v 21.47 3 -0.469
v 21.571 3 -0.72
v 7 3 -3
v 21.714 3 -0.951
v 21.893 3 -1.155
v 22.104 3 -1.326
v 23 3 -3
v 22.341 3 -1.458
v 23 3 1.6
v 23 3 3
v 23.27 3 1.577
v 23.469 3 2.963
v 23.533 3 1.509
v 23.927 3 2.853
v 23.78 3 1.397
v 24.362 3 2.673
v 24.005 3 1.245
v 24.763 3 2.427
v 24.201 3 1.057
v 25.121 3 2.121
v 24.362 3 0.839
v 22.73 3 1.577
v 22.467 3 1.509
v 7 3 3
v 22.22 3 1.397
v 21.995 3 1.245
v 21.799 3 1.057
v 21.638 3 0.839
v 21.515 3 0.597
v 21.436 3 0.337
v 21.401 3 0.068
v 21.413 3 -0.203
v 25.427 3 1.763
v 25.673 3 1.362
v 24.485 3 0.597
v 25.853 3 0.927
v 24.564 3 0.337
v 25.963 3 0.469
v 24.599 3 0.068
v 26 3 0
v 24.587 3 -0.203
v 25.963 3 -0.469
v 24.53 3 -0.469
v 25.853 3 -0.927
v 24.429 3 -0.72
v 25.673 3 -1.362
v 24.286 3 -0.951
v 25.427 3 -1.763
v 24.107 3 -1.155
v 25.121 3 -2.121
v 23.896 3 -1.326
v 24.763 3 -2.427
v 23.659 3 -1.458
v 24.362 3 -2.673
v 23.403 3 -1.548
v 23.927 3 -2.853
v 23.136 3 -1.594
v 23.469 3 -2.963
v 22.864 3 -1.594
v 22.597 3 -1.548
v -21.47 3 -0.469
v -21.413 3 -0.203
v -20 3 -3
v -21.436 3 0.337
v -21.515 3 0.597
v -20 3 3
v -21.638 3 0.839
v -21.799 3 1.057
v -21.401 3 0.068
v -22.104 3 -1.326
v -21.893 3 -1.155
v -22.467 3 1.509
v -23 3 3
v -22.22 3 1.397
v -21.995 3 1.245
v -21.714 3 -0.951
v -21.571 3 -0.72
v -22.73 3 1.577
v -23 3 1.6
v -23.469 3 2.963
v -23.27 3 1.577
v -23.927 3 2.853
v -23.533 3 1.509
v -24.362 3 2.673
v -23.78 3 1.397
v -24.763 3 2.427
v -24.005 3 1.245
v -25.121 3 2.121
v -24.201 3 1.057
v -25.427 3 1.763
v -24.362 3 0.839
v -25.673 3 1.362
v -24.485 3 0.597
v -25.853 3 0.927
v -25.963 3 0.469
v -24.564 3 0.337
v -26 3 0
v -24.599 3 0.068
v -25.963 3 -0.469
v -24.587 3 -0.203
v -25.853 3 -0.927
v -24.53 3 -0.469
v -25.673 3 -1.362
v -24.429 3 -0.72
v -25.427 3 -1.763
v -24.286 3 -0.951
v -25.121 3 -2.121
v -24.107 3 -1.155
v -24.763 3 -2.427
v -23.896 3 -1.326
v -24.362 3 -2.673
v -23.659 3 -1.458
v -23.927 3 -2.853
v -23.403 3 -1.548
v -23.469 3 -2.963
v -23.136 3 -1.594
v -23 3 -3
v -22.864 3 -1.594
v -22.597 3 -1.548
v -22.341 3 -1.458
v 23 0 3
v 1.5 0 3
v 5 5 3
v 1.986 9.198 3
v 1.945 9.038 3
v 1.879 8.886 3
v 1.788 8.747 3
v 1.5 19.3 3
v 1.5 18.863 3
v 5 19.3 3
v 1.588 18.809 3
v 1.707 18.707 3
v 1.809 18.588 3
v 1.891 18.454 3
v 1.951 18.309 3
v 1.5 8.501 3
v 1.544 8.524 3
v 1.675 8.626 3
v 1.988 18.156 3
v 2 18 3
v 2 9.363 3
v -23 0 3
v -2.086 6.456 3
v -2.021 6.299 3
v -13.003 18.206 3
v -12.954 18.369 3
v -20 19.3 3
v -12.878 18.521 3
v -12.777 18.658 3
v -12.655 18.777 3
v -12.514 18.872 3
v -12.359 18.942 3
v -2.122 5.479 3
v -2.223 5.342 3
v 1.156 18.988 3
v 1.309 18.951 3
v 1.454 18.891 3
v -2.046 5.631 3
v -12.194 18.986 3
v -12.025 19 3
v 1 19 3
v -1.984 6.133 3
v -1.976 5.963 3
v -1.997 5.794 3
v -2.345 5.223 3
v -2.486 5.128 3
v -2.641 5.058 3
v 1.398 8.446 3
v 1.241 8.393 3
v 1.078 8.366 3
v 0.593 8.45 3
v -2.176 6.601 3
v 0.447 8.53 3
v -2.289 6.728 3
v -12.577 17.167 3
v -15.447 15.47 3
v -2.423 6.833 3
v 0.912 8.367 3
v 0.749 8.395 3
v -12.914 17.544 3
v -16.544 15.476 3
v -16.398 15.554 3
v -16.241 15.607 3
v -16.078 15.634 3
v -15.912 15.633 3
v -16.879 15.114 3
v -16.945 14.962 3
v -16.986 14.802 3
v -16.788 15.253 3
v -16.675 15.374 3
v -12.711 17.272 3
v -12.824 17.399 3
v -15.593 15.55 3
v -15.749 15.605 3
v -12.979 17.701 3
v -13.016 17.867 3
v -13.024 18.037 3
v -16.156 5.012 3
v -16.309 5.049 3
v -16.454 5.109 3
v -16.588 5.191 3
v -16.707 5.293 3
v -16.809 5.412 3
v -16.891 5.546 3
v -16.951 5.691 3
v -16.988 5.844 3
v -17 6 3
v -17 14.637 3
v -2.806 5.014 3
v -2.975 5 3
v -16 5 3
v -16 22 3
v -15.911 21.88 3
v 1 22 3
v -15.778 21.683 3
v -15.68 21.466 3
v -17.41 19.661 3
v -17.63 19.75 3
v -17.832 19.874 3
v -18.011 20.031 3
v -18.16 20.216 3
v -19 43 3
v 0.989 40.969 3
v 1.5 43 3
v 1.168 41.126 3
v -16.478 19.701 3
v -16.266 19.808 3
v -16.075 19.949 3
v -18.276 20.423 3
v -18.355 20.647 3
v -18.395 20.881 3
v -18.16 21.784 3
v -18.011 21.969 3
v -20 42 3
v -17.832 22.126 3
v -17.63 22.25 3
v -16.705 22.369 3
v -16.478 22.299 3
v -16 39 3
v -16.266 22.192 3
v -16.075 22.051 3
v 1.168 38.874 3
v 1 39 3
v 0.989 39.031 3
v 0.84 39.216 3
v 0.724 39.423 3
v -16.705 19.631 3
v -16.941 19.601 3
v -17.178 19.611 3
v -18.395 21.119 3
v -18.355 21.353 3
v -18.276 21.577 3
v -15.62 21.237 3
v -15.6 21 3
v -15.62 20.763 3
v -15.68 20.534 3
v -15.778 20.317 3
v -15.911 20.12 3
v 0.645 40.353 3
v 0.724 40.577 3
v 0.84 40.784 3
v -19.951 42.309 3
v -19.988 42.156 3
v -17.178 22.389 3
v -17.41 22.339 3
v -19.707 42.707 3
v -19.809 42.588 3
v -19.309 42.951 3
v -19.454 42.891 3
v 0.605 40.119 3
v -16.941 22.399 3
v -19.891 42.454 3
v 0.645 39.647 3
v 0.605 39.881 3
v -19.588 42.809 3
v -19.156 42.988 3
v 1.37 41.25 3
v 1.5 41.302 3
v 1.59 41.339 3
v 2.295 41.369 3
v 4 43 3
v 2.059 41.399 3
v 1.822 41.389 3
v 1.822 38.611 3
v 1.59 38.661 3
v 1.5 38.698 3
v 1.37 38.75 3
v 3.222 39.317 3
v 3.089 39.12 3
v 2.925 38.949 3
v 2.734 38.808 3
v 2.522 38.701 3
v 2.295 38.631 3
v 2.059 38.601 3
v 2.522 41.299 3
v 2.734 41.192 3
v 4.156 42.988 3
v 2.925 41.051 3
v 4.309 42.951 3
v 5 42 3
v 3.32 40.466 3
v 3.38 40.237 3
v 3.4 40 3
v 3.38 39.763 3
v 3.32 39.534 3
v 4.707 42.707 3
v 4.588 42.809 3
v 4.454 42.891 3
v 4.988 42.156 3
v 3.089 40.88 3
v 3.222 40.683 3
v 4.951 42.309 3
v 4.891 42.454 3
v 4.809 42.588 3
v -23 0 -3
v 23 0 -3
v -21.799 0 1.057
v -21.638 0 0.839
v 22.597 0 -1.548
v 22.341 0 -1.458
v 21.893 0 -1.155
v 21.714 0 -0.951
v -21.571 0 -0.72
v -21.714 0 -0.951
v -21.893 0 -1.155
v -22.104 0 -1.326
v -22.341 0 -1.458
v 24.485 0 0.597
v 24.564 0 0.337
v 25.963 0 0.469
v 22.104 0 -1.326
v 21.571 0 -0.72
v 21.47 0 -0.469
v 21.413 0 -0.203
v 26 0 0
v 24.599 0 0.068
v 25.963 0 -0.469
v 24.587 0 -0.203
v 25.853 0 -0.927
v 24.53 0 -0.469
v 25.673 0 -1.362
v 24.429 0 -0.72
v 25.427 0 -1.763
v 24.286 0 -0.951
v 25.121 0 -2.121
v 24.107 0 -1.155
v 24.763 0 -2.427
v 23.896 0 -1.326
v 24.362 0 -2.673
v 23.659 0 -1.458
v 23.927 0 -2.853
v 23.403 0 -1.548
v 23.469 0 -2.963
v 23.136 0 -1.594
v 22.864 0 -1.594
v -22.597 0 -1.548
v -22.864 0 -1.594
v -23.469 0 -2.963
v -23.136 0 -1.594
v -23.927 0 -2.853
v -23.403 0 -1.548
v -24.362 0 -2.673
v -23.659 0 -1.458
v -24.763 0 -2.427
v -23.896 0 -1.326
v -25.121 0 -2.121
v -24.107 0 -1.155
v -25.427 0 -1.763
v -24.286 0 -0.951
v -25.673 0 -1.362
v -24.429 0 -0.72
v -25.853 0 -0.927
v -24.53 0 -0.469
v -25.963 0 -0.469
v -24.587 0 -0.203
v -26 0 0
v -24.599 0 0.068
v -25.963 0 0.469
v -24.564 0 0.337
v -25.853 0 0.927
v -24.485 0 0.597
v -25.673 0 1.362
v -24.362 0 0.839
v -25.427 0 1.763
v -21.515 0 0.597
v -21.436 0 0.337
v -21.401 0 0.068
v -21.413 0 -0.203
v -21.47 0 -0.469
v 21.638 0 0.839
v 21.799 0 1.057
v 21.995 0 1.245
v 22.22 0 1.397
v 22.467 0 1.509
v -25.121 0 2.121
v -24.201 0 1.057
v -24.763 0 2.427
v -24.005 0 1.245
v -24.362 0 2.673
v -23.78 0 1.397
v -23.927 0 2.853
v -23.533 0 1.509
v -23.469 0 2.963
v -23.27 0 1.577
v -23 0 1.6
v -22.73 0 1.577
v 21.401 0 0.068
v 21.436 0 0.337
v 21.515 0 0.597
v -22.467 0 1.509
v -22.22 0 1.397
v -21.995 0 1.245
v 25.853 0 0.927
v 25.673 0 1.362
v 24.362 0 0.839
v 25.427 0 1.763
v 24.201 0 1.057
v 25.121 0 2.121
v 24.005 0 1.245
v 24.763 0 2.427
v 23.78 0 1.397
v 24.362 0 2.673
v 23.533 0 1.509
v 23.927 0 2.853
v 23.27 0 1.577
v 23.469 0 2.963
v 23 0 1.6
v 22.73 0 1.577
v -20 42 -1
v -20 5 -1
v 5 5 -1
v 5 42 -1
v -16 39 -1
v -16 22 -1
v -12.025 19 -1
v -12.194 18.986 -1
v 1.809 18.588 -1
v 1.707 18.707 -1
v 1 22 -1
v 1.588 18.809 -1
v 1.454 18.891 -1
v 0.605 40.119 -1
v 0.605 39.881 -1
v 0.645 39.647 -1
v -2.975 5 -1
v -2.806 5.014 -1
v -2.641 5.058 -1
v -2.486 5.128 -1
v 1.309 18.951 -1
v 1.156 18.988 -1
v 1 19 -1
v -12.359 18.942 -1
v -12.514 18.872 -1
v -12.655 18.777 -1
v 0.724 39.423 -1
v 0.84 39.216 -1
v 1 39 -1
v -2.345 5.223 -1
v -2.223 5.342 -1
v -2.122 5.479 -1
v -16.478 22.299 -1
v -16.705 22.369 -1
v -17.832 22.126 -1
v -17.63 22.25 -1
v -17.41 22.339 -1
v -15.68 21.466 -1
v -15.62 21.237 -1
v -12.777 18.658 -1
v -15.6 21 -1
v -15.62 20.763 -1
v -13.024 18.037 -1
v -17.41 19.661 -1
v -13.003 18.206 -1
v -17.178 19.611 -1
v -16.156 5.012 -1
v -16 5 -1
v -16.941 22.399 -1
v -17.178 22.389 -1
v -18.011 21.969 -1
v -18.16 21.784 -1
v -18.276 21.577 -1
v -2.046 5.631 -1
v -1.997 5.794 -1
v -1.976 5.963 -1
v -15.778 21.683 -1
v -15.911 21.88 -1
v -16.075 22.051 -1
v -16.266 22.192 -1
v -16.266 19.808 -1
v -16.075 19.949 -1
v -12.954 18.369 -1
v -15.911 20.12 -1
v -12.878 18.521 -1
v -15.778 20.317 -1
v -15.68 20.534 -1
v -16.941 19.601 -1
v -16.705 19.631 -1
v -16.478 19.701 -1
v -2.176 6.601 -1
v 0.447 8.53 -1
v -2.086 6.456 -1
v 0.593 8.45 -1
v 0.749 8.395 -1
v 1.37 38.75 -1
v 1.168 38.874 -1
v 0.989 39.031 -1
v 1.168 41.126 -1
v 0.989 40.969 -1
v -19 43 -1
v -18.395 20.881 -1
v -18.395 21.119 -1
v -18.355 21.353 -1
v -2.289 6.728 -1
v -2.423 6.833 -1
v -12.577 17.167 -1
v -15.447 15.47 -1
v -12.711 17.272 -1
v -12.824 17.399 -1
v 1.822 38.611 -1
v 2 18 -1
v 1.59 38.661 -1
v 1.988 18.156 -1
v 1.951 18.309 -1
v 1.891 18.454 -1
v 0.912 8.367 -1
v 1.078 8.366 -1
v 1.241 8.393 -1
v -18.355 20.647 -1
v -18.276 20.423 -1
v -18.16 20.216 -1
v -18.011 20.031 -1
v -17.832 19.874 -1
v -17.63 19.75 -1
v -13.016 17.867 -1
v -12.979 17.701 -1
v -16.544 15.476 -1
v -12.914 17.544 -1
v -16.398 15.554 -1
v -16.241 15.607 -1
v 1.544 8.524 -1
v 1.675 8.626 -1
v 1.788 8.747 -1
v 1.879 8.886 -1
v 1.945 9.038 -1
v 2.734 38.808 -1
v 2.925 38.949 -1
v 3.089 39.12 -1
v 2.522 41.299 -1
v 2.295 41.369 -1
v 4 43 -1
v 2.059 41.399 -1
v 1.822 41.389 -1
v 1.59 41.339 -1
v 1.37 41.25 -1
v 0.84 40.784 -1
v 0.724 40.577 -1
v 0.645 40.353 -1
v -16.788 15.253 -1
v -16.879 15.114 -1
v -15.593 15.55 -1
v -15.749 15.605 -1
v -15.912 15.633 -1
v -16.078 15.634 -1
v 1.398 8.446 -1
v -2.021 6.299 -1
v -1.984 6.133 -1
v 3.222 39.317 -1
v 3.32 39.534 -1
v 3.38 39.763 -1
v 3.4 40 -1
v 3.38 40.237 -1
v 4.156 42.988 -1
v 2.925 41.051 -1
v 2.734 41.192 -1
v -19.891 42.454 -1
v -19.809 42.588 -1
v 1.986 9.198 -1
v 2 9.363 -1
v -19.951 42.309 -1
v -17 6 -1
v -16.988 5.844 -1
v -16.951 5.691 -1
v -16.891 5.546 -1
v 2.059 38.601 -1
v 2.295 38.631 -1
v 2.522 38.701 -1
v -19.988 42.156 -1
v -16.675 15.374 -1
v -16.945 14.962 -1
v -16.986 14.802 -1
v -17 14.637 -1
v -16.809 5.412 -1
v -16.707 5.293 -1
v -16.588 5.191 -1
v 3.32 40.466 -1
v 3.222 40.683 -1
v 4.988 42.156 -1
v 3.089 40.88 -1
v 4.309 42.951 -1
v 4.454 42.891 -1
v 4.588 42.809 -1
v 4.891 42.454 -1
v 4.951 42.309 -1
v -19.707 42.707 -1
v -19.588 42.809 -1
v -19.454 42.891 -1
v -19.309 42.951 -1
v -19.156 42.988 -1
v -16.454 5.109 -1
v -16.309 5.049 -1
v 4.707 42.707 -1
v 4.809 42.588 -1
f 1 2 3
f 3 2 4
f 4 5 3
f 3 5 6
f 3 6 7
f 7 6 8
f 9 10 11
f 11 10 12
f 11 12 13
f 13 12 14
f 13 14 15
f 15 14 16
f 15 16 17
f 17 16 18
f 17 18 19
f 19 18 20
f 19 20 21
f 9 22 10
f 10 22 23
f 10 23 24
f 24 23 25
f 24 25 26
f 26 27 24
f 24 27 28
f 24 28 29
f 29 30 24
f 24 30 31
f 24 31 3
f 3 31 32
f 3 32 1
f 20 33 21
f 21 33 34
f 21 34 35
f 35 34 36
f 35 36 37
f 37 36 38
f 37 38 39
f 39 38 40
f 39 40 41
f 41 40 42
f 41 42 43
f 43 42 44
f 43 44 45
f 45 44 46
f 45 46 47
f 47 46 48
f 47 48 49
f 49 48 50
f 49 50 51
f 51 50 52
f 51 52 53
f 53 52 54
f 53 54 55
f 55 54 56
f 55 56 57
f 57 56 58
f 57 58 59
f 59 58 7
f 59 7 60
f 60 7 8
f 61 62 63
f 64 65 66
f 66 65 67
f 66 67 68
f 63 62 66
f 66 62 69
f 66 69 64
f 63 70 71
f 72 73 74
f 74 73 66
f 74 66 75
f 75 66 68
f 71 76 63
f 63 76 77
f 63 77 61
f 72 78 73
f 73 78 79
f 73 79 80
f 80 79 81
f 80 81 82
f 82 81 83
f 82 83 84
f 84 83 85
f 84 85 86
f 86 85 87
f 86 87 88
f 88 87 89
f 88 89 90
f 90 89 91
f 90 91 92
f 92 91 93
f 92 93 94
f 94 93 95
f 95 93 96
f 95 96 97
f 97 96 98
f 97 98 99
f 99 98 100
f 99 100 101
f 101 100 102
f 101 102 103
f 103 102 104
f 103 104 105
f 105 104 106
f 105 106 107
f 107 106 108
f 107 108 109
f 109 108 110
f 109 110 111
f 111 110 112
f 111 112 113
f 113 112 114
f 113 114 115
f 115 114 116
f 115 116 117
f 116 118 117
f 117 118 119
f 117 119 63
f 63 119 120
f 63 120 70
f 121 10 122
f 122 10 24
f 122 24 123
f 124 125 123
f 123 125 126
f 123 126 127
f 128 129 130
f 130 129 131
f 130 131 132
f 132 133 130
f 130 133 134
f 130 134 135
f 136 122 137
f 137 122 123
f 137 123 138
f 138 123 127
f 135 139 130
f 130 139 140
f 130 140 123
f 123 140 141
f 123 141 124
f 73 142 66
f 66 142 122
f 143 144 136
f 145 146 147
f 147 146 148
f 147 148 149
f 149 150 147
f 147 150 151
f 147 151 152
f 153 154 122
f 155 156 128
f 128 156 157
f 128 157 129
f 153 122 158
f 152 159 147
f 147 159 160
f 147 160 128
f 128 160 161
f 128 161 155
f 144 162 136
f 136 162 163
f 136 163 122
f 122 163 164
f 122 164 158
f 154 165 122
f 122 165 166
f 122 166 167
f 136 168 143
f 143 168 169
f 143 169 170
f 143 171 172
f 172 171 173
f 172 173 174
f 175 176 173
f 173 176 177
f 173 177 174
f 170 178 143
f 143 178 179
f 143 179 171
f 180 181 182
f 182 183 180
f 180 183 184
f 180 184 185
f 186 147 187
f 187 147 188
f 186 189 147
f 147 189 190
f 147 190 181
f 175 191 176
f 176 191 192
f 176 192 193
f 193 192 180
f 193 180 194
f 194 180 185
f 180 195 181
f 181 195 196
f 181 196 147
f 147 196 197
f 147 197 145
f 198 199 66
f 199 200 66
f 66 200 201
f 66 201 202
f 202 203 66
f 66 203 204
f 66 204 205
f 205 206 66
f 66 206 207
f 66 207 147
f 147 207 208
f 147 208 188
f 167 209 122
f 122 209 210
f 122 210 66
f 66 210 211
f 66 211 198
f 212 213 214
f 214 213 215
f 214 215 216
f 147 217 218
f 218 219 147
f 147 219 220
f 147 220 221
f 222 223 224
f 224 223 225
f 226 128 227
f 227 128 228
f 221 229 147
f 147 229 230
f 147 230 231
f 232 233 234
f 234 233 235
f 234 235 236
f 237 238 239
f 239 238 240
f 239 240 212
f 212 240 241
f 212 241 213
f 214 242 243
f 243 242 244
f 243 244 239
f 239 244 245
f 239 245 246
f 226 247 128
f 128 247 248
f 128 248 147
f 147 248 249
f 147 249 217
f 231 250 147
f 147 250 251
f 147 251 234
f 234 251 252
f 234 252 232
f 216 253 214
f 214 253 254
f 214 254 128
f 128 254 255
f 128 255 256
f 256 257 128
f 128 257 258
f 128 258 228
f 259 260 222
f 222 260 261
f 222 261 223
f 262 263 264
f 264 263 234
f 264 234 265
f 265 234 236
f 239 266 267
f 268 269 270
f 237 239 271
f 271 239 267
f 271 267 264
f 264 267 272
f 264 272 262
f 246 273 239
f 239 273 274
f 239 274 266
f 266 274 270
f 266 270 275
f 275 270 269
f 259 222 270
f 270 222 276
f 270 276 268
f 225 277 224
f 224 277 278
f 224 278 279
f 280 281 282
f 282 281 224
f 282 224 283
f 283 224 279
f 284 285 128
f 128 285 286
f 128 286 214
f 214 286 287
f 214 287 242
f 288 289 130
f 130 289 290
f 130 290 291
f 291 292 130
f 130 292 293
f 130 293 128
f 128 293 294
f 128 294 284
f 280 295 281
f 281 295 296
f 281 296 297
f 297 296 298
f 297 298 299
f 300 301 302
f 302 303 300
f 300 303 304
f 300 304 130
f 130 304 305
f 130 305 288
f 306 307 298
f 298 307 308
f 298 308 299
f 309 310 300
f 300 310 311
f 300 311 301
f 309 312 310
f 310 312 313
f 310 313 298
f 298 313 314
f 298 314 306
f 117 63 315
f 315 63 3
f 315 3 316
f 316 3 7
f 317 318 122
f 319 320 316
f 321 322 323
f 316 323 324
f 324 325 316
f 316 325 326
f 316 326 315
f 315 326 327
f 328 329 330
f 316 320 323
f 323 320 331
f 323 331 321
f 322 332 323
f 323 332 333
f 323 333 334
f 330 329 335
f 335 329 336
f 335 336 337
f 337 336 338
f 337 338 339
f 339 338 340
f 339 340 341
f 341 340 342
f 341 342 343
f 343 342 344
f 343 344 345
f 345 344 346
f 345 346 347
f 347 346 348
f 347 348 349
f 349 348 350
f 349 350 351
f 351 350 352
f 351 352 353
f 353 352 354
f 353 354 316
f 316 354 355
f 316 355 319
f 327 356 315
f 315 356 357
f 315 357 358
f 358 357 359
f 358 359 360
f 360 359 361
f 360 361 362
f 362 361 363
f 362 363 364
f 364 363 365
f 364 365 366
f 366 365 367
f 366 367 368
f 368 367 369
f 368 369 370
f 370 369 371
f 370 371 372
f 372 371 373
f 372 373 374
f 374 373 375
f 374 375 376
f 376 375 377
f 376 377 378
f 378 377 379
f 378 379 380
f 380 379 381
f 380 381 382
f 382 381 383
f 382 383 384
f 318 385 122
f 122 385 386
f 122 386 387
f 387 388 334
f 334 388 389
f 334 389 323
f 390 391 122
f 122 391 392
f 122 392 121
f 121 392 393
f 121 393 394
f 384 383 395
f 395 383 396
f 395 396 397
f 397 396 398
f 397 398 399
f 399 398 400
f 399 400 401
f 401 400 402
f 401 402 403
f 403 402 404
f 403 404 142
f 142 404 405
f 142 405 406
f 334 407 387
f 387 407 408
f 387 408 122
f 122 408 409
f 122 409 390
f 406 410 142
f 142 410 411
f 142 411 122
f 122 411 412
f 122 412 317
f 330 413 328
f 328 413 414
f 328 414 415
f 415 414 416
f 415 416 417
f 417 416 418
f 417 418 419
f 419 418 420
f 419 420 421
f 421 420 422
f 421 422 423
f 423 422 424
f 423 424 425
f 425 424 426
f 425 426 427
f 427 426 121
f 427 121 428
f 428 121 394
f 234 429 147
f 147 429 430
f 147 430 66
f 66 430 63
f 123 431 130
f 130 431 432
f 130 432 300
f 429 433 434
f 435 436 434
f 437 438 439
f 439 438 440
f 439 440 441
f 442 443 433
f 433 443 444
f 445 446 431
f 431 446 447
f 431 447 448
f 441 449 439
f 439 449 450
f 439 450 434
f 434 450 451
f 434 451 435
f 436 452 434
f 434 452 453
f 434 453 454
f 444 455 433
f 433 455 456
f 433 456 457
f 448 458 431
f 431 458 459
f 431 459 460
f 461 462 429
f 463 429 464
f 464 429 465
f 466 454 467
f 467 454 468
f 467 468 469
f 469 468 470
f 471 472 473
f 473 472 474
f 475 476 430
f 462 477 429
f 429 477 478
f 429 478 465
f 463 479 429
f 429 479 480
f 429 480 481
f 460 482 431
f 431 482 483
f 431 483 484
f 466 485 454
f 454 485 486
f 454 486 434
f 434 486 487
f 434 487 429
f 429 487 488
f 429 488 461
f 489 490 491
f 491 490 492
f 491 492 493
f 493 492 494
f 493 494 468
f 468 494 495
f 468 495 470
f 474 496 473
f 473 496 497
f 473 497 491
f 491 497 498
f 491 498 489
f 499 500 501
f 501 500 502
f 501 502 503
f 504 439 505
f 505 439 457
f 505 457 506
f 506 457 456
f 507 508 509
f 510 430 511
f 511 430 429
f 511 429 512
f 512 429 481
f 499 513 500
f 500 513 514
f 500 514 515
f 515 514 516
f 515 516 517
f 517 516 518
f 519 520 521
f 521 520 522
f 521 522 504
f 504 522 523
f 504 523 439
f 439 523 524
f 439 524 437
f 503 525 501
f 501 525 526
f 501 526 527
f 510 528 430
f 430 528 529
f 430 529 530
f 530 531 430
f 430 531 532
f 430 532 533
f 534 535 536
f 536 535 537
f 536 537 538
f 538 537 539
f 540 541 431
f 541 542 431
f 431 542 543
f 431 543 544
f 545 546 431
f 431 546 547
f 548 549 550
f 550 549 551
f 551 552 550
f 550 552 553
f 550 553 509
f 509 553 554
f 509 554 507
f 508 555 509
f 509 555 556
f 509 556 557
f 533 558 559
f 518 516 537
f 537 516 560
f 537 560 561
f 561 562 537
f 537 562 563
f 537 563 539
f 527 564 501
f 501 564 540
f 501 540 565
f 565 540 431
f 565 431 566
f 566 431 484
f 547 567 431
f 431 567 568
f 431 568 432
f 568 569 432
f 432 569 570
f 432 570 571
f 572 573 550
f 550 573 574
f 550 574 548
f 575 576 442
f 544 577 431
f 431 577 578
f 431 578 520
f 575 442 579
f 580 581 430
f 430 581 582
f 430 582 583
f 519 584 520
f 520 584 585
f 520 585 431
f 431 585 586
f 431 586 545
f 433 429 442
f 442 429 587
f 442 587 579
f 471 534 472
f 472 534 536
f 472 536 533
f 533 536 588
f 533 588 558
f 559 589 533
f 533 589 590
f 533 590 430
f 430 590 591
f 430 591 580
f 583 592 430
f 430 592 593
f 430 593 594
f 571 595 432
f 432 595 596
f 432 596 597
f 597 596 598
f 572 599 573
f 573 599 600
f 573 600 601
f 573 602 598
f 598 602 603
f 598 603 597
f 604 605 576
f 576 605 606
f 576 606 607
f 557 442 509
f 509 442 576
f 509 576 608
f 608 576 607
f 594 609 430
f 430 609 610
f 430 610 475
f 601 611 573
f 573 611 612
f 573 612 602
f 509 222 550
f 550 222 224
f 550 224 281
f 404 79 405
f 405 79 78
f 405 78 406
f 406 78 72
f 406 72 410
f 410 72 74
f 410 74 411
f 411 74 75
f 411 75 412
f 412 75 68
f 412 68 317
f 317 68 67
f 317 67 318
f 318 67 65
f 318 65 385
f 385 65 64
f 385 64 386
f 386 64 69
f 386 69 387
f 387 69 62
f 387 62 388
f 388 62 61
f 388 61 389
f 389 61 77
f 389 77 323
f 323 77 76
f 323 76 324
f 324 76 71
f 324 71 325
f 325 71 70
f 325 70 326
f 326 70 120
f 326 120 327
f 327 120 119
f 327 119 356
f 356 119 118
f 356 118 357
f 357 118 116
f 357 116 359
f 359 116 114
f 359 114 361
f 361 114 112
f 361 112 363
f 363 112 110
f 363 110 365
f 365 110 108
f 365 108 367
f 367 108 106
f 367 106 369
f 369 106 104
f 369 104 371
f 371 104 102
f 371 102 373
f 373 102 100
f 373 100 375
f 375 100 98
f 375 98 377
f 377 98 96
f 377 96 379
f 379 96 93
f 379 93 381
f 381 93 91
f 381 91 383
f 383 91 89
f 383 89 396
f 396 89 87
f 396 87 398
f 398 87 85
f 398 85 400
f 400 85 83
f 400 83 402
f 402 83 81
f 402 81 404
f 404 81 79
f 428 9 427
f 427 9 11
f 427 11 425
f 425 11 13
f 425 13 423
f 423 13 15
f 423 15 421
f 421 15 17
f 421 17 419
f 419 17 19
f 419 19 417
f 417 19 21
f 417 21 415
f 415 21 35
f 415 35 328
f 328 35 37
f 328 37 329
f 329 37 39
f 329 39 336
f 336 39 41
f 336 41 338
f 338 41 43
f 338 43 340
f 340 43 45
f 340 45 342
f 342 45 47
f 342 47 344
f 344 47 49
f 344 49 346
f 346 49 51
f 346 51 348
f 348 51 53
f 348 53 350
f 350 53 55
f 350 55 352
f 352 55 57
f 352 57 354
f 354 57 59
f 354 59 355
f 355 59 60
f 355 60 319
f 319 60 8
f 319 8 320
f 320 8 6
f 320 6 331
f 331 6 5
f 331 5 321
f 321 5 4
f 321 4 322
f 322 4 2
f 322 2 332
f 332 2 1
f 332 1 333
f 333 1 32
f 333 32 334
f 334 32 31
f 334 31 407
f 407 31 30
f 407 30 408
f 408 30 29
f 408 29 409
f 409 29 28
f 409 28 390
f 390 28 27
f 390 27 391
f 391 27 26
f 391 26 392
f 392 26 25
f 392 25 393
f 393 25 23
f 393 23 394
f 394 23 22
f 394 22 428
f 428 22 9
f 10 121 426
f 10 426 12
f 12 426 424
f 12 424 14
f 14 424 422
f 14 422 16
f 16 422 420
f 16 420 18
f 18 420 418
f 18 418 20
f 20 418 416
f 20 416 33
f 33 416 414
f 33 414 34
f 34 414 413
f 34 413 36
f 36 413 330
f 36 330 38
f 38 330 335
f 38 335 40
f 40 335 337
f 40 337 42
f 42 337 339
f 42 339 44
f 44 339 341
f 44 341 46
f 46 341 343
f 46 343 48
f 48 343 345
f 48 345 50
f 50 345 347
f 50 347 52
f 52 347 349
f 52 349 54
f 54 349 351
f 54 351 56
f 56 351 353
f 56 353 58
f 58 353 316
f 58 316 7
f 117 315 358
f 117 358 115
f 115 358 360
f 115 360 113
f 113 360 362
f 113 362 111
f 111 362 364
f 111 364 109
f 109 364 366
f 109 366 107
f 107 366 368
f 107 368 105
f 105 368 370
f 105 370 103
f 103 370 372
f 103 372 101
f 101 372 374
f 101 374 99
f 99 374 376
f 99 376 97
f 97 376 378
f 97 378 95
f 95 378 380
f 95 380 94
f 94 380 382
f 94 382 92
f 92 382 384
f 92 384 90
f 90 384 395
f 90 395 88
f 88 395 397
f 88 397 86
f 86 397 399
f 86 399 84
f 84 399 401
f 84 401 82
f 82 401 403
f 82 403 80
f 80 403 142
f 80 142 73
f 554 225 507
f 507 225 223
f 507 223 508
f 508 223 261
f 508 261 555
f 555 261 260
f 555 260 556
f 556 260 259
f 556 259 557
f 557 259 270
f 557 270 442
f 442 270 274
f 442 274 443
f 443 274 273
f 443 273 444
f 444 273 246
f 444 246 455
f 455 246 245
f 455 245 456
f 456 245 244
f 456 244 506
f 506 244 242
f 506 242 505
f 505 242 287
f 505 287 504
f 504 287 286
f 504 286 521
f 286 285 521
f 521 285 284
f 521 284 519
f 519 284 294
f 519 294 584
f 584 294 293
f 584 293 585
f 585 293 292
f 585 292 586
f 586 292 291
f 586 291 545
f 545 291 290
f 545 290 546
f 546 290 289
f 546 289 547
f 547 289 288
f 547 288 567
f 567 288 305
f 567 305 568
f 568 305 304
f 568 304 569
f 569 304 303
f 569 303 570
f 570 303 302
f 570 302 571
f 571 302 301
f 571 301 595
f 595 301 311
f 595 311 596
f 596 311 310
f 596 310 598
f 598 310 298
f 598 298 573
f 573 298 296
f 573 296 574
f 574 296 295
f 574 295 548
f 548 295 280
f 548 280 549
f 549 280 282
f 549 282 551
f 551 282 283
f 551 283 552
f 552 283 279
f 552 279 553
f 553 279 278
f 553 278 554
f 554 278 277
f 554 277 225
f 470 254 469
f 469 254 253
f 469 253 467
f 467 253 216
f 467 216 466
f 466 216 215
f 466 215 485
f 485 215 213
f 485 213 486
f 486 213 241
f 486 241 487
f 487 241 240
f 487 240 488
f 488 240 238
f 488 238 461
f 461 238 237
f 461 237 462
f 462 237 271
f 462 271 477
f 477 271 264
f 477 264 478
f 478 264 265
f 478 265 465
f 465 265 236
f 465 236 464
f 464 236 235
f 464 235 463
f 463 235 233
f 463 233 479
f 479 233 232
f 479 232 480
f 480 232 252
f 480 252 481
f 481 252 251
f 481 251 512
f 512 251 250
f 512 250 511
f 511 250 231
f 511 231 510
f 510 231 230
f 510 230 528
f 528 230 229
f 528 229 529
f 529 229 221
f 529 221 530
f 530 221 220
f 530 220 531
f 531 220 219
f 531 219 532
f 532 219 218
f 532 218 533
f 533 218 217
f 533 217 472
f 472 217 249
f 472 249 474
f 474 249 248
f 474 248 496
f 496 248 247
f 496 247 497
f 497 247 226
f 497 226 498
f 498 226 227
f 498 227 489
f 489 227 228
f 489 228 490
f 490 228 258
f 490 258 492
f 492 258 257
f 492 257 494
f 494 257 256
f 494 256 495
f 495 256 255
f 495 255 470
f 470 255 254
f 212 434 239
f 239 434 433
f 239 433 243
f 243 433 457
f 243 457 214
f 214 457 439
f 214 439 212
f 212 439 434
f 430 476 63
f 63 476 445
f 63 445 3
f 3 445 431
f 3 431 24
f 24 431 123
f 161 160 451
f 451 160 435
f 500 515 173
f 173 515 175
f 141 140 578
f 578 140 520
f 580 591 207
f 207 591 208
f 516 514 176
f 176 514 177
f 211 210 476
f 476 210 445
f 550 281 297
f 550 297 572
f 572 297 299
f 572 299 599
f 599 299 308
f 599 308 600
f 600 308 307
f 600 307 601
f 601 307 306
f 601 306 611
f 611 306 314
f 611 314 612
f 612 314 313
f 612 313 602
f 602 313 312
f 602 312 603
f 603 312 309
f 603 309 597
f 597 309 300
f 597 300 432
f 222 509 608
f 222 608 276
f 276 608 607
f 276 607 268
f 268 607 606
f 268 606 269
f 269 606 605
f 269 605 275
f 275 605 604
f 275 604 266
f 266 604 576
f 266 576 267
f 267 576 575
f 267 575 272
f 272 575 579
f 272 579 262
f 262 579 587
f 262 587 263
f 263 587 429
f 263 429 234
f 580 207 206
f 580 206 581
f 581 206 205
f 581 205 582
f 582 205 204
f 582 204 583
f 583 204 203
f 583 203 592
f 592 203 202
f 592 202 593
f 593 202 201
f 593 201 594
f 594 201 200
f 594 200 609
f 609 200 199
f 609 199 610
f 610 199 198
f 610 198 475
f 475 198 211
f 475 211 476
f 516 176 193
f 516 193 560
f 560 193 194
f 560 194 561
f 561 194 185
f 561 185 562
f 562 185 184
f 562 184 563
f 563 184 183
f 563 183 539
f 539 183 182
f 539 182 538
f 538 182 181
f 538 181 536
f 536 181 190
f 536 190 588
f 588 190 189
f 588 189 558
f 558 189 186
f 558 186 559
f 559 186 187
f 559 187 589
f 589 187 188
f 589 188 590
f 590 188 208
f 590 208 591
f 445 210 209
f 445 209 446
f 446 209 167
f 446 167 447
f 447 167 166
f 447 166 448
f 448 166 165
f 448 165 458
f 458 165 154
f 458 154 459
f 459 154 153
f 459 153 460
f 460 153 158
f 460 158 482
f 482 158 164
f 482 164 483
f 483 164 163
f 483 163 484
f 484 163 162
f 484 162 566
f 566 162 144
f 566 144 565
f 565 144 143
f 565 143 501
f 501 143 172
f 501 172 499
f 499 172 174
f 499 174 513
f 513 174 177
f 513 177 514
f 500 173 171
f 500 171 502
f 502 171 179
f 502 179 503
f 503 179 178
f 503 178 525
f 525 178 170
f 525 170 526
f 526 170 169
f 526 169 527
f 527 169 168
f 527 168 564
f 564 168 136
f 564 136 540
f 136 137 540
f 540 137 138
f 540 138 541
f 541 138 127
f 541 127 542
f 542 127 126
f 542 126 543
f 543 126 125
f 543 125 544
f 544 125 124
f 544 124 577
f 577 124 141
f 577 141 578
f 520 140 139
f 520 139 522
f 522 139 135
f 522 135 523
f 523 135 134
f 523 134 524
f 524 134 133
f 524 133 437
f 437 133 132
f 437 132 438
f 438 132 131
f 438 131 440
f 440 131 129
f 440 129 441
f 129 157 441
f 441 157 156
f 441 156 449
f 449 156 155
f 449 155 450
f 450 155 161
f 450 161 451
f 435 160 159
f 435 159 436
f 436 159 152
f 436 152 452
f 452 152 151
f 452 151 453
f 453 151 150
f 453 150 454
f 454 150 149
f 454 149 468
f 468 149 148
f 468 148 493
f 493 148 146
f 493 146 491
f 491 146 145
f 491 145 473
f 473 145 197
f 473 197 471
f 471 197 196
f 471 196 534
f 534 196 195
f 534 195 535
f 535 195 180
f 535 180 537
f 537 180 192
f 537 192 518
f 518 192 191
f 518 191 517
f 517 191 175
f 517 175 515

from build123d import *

# Parameters (mm, degrees)
SKETCH1_W           = 52
SKETCH1_H           = 6
BOSS_EXTRUDE1_DEPTH = 3
SKETCH2_W           = 25
SKETCH2_H           = 4
BOSS_EXTRUDE2_DEPTH = 40
SKETCH3_R           = 1.6
CUT_EXTRUDE1_DEPTH  = 48.801673611
FILLET1_R           = 3
SKETCH5_R           = 1.4
CUT_EXTRUDE3_DEPTH  = 51.606323716
SKETCH6_W           = 17
SKETCH6_H           = 17
CUT_EXTRUDE4_DEPTH  = 51.606323716
CHAMFER1_SIZE       = 2
CUT_EXTRUDE5_DEPTH  = 51.408332645
FILLET2_R           = 1


with BuildPart() as part:
    # Sketch1 → Boss-Extrude1 (new body)
    with BuildSketch(Plane(origin=(0, 0, 0), x_dir=(1, 0, 0), z_dir=(0, 1, 0))):
        Rectangle(SKETCH1_W, SKETCH1_H)
    extrude(amount=BOSS_EXTRUDE1_DEPTH)

    # Sketch2 → Boss-Extrude2 (add)
    with BuildSketch(Plane(origin=(0, 3, 0), x_dir=(1, 0, 0), z_dir=(0, 1, 0))):
        with Locations((-7.5, -1)):
            Rectangle(SKETCH2_W, SKETCH2_H)
    extrude(amount=BOSS_EXTRUDE2_DEPTH)

    # Sketch3 → Cut-Extrude1 (cut, through all)
    with BuildSketch(Plane(origin=(0, 3, 0), x_dir=(1, 0, 0), z_dir=(0, 1, 0))):
        with Locations(Location((-23, 0, 0), (0, 0, 270))):
            Circle(SKETCH3_R)
        with Locations(Location((23, 0, 0), (0, 0, 270))):
            Circle(SKETCH3_R)
    extrude(amount=-CUT_EXTRUDE1_DEPTH, mode=Mode.SUBTRACT)

    # Fillet1
    fillet1_edges = [part.edges().sort_by_distance(p)[0] for p in [
        (26, 1.5, -3),
        (26, 1.5, 3),
        (-26, 1.5, 3),
        (-26, 1.5, -3),
    ]]
    fillet(fillet1_edges, radius=FILLET1_R - 0.0001)  # a hair under: the kernel refuses the full size

    # Sketch5 → Cut-Extrude3 (cut, through all)
    with BuildSketch(Plane.XY.offset(3)):
        with Locations((2, 40)):
            Circle(SKETCH5_R)
        with Locations((-17, 21)):
            Circle(SKETCH5_R)
    extrude(amount=-CUT_EXTRUDE3_DEPTH, mode=Mode.SUBTRACT)

    # Sketch6 → Cut-Extrude4 (cut, through all)
    with BuildSketch(Plane.XY.offset(3)):
        with Locations((-7.5, 30.5)):
            Rectangle(SKETCH6_W, SKETCH6_H)
    extrude(amount=-CUT_EXTRUDE4_DEPTH, mode=Mode.SUBTRACT)

    # Chamfer1
    chamfer1_edges = [part.edges().sort_by_distance(p)[0] for p in [
        (5, 3, 1),
        (-7.5, 3, -1),
    ]]
    chamfer(chamfer1_edges, length=CHAMFER1_SIZE - 0.0001)  # a hair under: the kernel refuses the full size

    # Sketch7 → Cut-Extrude5 (cut, through all)
    with BuildSketch(Plane(origin=(0, 0, -1), x_dir=(-1, 0, 0), z_dir=(0, 0, -1))):
        Polygon((-2, 19), (-2, 7.500243065), (15.342054098, 19), align=None)
        Polygon((17, 16.499756935), (-0.342054098, 5), (17, 5), align=None)
    extrude(amount=-CUT_EXTRUDE5_DEPTH, mode=Mode.SUBTRACT)

    # Fillet2
    fillet2_edges = [part.edges().sort_by_distance(p)[0] for p in [
        (-17, 5, 1),
        (-17, 16.499756935, 1),
        (0.342054098, 5, 1),
        (2, 7.500243065, 1),
        (2, 19, 1),
        (-15.342054098, 19, 1),
        (5, 43, 1),
        (-20, 43, 1),
    ]]
    fillet(fillet2_edges, radius=FILLET2_R)


solid = part.part
